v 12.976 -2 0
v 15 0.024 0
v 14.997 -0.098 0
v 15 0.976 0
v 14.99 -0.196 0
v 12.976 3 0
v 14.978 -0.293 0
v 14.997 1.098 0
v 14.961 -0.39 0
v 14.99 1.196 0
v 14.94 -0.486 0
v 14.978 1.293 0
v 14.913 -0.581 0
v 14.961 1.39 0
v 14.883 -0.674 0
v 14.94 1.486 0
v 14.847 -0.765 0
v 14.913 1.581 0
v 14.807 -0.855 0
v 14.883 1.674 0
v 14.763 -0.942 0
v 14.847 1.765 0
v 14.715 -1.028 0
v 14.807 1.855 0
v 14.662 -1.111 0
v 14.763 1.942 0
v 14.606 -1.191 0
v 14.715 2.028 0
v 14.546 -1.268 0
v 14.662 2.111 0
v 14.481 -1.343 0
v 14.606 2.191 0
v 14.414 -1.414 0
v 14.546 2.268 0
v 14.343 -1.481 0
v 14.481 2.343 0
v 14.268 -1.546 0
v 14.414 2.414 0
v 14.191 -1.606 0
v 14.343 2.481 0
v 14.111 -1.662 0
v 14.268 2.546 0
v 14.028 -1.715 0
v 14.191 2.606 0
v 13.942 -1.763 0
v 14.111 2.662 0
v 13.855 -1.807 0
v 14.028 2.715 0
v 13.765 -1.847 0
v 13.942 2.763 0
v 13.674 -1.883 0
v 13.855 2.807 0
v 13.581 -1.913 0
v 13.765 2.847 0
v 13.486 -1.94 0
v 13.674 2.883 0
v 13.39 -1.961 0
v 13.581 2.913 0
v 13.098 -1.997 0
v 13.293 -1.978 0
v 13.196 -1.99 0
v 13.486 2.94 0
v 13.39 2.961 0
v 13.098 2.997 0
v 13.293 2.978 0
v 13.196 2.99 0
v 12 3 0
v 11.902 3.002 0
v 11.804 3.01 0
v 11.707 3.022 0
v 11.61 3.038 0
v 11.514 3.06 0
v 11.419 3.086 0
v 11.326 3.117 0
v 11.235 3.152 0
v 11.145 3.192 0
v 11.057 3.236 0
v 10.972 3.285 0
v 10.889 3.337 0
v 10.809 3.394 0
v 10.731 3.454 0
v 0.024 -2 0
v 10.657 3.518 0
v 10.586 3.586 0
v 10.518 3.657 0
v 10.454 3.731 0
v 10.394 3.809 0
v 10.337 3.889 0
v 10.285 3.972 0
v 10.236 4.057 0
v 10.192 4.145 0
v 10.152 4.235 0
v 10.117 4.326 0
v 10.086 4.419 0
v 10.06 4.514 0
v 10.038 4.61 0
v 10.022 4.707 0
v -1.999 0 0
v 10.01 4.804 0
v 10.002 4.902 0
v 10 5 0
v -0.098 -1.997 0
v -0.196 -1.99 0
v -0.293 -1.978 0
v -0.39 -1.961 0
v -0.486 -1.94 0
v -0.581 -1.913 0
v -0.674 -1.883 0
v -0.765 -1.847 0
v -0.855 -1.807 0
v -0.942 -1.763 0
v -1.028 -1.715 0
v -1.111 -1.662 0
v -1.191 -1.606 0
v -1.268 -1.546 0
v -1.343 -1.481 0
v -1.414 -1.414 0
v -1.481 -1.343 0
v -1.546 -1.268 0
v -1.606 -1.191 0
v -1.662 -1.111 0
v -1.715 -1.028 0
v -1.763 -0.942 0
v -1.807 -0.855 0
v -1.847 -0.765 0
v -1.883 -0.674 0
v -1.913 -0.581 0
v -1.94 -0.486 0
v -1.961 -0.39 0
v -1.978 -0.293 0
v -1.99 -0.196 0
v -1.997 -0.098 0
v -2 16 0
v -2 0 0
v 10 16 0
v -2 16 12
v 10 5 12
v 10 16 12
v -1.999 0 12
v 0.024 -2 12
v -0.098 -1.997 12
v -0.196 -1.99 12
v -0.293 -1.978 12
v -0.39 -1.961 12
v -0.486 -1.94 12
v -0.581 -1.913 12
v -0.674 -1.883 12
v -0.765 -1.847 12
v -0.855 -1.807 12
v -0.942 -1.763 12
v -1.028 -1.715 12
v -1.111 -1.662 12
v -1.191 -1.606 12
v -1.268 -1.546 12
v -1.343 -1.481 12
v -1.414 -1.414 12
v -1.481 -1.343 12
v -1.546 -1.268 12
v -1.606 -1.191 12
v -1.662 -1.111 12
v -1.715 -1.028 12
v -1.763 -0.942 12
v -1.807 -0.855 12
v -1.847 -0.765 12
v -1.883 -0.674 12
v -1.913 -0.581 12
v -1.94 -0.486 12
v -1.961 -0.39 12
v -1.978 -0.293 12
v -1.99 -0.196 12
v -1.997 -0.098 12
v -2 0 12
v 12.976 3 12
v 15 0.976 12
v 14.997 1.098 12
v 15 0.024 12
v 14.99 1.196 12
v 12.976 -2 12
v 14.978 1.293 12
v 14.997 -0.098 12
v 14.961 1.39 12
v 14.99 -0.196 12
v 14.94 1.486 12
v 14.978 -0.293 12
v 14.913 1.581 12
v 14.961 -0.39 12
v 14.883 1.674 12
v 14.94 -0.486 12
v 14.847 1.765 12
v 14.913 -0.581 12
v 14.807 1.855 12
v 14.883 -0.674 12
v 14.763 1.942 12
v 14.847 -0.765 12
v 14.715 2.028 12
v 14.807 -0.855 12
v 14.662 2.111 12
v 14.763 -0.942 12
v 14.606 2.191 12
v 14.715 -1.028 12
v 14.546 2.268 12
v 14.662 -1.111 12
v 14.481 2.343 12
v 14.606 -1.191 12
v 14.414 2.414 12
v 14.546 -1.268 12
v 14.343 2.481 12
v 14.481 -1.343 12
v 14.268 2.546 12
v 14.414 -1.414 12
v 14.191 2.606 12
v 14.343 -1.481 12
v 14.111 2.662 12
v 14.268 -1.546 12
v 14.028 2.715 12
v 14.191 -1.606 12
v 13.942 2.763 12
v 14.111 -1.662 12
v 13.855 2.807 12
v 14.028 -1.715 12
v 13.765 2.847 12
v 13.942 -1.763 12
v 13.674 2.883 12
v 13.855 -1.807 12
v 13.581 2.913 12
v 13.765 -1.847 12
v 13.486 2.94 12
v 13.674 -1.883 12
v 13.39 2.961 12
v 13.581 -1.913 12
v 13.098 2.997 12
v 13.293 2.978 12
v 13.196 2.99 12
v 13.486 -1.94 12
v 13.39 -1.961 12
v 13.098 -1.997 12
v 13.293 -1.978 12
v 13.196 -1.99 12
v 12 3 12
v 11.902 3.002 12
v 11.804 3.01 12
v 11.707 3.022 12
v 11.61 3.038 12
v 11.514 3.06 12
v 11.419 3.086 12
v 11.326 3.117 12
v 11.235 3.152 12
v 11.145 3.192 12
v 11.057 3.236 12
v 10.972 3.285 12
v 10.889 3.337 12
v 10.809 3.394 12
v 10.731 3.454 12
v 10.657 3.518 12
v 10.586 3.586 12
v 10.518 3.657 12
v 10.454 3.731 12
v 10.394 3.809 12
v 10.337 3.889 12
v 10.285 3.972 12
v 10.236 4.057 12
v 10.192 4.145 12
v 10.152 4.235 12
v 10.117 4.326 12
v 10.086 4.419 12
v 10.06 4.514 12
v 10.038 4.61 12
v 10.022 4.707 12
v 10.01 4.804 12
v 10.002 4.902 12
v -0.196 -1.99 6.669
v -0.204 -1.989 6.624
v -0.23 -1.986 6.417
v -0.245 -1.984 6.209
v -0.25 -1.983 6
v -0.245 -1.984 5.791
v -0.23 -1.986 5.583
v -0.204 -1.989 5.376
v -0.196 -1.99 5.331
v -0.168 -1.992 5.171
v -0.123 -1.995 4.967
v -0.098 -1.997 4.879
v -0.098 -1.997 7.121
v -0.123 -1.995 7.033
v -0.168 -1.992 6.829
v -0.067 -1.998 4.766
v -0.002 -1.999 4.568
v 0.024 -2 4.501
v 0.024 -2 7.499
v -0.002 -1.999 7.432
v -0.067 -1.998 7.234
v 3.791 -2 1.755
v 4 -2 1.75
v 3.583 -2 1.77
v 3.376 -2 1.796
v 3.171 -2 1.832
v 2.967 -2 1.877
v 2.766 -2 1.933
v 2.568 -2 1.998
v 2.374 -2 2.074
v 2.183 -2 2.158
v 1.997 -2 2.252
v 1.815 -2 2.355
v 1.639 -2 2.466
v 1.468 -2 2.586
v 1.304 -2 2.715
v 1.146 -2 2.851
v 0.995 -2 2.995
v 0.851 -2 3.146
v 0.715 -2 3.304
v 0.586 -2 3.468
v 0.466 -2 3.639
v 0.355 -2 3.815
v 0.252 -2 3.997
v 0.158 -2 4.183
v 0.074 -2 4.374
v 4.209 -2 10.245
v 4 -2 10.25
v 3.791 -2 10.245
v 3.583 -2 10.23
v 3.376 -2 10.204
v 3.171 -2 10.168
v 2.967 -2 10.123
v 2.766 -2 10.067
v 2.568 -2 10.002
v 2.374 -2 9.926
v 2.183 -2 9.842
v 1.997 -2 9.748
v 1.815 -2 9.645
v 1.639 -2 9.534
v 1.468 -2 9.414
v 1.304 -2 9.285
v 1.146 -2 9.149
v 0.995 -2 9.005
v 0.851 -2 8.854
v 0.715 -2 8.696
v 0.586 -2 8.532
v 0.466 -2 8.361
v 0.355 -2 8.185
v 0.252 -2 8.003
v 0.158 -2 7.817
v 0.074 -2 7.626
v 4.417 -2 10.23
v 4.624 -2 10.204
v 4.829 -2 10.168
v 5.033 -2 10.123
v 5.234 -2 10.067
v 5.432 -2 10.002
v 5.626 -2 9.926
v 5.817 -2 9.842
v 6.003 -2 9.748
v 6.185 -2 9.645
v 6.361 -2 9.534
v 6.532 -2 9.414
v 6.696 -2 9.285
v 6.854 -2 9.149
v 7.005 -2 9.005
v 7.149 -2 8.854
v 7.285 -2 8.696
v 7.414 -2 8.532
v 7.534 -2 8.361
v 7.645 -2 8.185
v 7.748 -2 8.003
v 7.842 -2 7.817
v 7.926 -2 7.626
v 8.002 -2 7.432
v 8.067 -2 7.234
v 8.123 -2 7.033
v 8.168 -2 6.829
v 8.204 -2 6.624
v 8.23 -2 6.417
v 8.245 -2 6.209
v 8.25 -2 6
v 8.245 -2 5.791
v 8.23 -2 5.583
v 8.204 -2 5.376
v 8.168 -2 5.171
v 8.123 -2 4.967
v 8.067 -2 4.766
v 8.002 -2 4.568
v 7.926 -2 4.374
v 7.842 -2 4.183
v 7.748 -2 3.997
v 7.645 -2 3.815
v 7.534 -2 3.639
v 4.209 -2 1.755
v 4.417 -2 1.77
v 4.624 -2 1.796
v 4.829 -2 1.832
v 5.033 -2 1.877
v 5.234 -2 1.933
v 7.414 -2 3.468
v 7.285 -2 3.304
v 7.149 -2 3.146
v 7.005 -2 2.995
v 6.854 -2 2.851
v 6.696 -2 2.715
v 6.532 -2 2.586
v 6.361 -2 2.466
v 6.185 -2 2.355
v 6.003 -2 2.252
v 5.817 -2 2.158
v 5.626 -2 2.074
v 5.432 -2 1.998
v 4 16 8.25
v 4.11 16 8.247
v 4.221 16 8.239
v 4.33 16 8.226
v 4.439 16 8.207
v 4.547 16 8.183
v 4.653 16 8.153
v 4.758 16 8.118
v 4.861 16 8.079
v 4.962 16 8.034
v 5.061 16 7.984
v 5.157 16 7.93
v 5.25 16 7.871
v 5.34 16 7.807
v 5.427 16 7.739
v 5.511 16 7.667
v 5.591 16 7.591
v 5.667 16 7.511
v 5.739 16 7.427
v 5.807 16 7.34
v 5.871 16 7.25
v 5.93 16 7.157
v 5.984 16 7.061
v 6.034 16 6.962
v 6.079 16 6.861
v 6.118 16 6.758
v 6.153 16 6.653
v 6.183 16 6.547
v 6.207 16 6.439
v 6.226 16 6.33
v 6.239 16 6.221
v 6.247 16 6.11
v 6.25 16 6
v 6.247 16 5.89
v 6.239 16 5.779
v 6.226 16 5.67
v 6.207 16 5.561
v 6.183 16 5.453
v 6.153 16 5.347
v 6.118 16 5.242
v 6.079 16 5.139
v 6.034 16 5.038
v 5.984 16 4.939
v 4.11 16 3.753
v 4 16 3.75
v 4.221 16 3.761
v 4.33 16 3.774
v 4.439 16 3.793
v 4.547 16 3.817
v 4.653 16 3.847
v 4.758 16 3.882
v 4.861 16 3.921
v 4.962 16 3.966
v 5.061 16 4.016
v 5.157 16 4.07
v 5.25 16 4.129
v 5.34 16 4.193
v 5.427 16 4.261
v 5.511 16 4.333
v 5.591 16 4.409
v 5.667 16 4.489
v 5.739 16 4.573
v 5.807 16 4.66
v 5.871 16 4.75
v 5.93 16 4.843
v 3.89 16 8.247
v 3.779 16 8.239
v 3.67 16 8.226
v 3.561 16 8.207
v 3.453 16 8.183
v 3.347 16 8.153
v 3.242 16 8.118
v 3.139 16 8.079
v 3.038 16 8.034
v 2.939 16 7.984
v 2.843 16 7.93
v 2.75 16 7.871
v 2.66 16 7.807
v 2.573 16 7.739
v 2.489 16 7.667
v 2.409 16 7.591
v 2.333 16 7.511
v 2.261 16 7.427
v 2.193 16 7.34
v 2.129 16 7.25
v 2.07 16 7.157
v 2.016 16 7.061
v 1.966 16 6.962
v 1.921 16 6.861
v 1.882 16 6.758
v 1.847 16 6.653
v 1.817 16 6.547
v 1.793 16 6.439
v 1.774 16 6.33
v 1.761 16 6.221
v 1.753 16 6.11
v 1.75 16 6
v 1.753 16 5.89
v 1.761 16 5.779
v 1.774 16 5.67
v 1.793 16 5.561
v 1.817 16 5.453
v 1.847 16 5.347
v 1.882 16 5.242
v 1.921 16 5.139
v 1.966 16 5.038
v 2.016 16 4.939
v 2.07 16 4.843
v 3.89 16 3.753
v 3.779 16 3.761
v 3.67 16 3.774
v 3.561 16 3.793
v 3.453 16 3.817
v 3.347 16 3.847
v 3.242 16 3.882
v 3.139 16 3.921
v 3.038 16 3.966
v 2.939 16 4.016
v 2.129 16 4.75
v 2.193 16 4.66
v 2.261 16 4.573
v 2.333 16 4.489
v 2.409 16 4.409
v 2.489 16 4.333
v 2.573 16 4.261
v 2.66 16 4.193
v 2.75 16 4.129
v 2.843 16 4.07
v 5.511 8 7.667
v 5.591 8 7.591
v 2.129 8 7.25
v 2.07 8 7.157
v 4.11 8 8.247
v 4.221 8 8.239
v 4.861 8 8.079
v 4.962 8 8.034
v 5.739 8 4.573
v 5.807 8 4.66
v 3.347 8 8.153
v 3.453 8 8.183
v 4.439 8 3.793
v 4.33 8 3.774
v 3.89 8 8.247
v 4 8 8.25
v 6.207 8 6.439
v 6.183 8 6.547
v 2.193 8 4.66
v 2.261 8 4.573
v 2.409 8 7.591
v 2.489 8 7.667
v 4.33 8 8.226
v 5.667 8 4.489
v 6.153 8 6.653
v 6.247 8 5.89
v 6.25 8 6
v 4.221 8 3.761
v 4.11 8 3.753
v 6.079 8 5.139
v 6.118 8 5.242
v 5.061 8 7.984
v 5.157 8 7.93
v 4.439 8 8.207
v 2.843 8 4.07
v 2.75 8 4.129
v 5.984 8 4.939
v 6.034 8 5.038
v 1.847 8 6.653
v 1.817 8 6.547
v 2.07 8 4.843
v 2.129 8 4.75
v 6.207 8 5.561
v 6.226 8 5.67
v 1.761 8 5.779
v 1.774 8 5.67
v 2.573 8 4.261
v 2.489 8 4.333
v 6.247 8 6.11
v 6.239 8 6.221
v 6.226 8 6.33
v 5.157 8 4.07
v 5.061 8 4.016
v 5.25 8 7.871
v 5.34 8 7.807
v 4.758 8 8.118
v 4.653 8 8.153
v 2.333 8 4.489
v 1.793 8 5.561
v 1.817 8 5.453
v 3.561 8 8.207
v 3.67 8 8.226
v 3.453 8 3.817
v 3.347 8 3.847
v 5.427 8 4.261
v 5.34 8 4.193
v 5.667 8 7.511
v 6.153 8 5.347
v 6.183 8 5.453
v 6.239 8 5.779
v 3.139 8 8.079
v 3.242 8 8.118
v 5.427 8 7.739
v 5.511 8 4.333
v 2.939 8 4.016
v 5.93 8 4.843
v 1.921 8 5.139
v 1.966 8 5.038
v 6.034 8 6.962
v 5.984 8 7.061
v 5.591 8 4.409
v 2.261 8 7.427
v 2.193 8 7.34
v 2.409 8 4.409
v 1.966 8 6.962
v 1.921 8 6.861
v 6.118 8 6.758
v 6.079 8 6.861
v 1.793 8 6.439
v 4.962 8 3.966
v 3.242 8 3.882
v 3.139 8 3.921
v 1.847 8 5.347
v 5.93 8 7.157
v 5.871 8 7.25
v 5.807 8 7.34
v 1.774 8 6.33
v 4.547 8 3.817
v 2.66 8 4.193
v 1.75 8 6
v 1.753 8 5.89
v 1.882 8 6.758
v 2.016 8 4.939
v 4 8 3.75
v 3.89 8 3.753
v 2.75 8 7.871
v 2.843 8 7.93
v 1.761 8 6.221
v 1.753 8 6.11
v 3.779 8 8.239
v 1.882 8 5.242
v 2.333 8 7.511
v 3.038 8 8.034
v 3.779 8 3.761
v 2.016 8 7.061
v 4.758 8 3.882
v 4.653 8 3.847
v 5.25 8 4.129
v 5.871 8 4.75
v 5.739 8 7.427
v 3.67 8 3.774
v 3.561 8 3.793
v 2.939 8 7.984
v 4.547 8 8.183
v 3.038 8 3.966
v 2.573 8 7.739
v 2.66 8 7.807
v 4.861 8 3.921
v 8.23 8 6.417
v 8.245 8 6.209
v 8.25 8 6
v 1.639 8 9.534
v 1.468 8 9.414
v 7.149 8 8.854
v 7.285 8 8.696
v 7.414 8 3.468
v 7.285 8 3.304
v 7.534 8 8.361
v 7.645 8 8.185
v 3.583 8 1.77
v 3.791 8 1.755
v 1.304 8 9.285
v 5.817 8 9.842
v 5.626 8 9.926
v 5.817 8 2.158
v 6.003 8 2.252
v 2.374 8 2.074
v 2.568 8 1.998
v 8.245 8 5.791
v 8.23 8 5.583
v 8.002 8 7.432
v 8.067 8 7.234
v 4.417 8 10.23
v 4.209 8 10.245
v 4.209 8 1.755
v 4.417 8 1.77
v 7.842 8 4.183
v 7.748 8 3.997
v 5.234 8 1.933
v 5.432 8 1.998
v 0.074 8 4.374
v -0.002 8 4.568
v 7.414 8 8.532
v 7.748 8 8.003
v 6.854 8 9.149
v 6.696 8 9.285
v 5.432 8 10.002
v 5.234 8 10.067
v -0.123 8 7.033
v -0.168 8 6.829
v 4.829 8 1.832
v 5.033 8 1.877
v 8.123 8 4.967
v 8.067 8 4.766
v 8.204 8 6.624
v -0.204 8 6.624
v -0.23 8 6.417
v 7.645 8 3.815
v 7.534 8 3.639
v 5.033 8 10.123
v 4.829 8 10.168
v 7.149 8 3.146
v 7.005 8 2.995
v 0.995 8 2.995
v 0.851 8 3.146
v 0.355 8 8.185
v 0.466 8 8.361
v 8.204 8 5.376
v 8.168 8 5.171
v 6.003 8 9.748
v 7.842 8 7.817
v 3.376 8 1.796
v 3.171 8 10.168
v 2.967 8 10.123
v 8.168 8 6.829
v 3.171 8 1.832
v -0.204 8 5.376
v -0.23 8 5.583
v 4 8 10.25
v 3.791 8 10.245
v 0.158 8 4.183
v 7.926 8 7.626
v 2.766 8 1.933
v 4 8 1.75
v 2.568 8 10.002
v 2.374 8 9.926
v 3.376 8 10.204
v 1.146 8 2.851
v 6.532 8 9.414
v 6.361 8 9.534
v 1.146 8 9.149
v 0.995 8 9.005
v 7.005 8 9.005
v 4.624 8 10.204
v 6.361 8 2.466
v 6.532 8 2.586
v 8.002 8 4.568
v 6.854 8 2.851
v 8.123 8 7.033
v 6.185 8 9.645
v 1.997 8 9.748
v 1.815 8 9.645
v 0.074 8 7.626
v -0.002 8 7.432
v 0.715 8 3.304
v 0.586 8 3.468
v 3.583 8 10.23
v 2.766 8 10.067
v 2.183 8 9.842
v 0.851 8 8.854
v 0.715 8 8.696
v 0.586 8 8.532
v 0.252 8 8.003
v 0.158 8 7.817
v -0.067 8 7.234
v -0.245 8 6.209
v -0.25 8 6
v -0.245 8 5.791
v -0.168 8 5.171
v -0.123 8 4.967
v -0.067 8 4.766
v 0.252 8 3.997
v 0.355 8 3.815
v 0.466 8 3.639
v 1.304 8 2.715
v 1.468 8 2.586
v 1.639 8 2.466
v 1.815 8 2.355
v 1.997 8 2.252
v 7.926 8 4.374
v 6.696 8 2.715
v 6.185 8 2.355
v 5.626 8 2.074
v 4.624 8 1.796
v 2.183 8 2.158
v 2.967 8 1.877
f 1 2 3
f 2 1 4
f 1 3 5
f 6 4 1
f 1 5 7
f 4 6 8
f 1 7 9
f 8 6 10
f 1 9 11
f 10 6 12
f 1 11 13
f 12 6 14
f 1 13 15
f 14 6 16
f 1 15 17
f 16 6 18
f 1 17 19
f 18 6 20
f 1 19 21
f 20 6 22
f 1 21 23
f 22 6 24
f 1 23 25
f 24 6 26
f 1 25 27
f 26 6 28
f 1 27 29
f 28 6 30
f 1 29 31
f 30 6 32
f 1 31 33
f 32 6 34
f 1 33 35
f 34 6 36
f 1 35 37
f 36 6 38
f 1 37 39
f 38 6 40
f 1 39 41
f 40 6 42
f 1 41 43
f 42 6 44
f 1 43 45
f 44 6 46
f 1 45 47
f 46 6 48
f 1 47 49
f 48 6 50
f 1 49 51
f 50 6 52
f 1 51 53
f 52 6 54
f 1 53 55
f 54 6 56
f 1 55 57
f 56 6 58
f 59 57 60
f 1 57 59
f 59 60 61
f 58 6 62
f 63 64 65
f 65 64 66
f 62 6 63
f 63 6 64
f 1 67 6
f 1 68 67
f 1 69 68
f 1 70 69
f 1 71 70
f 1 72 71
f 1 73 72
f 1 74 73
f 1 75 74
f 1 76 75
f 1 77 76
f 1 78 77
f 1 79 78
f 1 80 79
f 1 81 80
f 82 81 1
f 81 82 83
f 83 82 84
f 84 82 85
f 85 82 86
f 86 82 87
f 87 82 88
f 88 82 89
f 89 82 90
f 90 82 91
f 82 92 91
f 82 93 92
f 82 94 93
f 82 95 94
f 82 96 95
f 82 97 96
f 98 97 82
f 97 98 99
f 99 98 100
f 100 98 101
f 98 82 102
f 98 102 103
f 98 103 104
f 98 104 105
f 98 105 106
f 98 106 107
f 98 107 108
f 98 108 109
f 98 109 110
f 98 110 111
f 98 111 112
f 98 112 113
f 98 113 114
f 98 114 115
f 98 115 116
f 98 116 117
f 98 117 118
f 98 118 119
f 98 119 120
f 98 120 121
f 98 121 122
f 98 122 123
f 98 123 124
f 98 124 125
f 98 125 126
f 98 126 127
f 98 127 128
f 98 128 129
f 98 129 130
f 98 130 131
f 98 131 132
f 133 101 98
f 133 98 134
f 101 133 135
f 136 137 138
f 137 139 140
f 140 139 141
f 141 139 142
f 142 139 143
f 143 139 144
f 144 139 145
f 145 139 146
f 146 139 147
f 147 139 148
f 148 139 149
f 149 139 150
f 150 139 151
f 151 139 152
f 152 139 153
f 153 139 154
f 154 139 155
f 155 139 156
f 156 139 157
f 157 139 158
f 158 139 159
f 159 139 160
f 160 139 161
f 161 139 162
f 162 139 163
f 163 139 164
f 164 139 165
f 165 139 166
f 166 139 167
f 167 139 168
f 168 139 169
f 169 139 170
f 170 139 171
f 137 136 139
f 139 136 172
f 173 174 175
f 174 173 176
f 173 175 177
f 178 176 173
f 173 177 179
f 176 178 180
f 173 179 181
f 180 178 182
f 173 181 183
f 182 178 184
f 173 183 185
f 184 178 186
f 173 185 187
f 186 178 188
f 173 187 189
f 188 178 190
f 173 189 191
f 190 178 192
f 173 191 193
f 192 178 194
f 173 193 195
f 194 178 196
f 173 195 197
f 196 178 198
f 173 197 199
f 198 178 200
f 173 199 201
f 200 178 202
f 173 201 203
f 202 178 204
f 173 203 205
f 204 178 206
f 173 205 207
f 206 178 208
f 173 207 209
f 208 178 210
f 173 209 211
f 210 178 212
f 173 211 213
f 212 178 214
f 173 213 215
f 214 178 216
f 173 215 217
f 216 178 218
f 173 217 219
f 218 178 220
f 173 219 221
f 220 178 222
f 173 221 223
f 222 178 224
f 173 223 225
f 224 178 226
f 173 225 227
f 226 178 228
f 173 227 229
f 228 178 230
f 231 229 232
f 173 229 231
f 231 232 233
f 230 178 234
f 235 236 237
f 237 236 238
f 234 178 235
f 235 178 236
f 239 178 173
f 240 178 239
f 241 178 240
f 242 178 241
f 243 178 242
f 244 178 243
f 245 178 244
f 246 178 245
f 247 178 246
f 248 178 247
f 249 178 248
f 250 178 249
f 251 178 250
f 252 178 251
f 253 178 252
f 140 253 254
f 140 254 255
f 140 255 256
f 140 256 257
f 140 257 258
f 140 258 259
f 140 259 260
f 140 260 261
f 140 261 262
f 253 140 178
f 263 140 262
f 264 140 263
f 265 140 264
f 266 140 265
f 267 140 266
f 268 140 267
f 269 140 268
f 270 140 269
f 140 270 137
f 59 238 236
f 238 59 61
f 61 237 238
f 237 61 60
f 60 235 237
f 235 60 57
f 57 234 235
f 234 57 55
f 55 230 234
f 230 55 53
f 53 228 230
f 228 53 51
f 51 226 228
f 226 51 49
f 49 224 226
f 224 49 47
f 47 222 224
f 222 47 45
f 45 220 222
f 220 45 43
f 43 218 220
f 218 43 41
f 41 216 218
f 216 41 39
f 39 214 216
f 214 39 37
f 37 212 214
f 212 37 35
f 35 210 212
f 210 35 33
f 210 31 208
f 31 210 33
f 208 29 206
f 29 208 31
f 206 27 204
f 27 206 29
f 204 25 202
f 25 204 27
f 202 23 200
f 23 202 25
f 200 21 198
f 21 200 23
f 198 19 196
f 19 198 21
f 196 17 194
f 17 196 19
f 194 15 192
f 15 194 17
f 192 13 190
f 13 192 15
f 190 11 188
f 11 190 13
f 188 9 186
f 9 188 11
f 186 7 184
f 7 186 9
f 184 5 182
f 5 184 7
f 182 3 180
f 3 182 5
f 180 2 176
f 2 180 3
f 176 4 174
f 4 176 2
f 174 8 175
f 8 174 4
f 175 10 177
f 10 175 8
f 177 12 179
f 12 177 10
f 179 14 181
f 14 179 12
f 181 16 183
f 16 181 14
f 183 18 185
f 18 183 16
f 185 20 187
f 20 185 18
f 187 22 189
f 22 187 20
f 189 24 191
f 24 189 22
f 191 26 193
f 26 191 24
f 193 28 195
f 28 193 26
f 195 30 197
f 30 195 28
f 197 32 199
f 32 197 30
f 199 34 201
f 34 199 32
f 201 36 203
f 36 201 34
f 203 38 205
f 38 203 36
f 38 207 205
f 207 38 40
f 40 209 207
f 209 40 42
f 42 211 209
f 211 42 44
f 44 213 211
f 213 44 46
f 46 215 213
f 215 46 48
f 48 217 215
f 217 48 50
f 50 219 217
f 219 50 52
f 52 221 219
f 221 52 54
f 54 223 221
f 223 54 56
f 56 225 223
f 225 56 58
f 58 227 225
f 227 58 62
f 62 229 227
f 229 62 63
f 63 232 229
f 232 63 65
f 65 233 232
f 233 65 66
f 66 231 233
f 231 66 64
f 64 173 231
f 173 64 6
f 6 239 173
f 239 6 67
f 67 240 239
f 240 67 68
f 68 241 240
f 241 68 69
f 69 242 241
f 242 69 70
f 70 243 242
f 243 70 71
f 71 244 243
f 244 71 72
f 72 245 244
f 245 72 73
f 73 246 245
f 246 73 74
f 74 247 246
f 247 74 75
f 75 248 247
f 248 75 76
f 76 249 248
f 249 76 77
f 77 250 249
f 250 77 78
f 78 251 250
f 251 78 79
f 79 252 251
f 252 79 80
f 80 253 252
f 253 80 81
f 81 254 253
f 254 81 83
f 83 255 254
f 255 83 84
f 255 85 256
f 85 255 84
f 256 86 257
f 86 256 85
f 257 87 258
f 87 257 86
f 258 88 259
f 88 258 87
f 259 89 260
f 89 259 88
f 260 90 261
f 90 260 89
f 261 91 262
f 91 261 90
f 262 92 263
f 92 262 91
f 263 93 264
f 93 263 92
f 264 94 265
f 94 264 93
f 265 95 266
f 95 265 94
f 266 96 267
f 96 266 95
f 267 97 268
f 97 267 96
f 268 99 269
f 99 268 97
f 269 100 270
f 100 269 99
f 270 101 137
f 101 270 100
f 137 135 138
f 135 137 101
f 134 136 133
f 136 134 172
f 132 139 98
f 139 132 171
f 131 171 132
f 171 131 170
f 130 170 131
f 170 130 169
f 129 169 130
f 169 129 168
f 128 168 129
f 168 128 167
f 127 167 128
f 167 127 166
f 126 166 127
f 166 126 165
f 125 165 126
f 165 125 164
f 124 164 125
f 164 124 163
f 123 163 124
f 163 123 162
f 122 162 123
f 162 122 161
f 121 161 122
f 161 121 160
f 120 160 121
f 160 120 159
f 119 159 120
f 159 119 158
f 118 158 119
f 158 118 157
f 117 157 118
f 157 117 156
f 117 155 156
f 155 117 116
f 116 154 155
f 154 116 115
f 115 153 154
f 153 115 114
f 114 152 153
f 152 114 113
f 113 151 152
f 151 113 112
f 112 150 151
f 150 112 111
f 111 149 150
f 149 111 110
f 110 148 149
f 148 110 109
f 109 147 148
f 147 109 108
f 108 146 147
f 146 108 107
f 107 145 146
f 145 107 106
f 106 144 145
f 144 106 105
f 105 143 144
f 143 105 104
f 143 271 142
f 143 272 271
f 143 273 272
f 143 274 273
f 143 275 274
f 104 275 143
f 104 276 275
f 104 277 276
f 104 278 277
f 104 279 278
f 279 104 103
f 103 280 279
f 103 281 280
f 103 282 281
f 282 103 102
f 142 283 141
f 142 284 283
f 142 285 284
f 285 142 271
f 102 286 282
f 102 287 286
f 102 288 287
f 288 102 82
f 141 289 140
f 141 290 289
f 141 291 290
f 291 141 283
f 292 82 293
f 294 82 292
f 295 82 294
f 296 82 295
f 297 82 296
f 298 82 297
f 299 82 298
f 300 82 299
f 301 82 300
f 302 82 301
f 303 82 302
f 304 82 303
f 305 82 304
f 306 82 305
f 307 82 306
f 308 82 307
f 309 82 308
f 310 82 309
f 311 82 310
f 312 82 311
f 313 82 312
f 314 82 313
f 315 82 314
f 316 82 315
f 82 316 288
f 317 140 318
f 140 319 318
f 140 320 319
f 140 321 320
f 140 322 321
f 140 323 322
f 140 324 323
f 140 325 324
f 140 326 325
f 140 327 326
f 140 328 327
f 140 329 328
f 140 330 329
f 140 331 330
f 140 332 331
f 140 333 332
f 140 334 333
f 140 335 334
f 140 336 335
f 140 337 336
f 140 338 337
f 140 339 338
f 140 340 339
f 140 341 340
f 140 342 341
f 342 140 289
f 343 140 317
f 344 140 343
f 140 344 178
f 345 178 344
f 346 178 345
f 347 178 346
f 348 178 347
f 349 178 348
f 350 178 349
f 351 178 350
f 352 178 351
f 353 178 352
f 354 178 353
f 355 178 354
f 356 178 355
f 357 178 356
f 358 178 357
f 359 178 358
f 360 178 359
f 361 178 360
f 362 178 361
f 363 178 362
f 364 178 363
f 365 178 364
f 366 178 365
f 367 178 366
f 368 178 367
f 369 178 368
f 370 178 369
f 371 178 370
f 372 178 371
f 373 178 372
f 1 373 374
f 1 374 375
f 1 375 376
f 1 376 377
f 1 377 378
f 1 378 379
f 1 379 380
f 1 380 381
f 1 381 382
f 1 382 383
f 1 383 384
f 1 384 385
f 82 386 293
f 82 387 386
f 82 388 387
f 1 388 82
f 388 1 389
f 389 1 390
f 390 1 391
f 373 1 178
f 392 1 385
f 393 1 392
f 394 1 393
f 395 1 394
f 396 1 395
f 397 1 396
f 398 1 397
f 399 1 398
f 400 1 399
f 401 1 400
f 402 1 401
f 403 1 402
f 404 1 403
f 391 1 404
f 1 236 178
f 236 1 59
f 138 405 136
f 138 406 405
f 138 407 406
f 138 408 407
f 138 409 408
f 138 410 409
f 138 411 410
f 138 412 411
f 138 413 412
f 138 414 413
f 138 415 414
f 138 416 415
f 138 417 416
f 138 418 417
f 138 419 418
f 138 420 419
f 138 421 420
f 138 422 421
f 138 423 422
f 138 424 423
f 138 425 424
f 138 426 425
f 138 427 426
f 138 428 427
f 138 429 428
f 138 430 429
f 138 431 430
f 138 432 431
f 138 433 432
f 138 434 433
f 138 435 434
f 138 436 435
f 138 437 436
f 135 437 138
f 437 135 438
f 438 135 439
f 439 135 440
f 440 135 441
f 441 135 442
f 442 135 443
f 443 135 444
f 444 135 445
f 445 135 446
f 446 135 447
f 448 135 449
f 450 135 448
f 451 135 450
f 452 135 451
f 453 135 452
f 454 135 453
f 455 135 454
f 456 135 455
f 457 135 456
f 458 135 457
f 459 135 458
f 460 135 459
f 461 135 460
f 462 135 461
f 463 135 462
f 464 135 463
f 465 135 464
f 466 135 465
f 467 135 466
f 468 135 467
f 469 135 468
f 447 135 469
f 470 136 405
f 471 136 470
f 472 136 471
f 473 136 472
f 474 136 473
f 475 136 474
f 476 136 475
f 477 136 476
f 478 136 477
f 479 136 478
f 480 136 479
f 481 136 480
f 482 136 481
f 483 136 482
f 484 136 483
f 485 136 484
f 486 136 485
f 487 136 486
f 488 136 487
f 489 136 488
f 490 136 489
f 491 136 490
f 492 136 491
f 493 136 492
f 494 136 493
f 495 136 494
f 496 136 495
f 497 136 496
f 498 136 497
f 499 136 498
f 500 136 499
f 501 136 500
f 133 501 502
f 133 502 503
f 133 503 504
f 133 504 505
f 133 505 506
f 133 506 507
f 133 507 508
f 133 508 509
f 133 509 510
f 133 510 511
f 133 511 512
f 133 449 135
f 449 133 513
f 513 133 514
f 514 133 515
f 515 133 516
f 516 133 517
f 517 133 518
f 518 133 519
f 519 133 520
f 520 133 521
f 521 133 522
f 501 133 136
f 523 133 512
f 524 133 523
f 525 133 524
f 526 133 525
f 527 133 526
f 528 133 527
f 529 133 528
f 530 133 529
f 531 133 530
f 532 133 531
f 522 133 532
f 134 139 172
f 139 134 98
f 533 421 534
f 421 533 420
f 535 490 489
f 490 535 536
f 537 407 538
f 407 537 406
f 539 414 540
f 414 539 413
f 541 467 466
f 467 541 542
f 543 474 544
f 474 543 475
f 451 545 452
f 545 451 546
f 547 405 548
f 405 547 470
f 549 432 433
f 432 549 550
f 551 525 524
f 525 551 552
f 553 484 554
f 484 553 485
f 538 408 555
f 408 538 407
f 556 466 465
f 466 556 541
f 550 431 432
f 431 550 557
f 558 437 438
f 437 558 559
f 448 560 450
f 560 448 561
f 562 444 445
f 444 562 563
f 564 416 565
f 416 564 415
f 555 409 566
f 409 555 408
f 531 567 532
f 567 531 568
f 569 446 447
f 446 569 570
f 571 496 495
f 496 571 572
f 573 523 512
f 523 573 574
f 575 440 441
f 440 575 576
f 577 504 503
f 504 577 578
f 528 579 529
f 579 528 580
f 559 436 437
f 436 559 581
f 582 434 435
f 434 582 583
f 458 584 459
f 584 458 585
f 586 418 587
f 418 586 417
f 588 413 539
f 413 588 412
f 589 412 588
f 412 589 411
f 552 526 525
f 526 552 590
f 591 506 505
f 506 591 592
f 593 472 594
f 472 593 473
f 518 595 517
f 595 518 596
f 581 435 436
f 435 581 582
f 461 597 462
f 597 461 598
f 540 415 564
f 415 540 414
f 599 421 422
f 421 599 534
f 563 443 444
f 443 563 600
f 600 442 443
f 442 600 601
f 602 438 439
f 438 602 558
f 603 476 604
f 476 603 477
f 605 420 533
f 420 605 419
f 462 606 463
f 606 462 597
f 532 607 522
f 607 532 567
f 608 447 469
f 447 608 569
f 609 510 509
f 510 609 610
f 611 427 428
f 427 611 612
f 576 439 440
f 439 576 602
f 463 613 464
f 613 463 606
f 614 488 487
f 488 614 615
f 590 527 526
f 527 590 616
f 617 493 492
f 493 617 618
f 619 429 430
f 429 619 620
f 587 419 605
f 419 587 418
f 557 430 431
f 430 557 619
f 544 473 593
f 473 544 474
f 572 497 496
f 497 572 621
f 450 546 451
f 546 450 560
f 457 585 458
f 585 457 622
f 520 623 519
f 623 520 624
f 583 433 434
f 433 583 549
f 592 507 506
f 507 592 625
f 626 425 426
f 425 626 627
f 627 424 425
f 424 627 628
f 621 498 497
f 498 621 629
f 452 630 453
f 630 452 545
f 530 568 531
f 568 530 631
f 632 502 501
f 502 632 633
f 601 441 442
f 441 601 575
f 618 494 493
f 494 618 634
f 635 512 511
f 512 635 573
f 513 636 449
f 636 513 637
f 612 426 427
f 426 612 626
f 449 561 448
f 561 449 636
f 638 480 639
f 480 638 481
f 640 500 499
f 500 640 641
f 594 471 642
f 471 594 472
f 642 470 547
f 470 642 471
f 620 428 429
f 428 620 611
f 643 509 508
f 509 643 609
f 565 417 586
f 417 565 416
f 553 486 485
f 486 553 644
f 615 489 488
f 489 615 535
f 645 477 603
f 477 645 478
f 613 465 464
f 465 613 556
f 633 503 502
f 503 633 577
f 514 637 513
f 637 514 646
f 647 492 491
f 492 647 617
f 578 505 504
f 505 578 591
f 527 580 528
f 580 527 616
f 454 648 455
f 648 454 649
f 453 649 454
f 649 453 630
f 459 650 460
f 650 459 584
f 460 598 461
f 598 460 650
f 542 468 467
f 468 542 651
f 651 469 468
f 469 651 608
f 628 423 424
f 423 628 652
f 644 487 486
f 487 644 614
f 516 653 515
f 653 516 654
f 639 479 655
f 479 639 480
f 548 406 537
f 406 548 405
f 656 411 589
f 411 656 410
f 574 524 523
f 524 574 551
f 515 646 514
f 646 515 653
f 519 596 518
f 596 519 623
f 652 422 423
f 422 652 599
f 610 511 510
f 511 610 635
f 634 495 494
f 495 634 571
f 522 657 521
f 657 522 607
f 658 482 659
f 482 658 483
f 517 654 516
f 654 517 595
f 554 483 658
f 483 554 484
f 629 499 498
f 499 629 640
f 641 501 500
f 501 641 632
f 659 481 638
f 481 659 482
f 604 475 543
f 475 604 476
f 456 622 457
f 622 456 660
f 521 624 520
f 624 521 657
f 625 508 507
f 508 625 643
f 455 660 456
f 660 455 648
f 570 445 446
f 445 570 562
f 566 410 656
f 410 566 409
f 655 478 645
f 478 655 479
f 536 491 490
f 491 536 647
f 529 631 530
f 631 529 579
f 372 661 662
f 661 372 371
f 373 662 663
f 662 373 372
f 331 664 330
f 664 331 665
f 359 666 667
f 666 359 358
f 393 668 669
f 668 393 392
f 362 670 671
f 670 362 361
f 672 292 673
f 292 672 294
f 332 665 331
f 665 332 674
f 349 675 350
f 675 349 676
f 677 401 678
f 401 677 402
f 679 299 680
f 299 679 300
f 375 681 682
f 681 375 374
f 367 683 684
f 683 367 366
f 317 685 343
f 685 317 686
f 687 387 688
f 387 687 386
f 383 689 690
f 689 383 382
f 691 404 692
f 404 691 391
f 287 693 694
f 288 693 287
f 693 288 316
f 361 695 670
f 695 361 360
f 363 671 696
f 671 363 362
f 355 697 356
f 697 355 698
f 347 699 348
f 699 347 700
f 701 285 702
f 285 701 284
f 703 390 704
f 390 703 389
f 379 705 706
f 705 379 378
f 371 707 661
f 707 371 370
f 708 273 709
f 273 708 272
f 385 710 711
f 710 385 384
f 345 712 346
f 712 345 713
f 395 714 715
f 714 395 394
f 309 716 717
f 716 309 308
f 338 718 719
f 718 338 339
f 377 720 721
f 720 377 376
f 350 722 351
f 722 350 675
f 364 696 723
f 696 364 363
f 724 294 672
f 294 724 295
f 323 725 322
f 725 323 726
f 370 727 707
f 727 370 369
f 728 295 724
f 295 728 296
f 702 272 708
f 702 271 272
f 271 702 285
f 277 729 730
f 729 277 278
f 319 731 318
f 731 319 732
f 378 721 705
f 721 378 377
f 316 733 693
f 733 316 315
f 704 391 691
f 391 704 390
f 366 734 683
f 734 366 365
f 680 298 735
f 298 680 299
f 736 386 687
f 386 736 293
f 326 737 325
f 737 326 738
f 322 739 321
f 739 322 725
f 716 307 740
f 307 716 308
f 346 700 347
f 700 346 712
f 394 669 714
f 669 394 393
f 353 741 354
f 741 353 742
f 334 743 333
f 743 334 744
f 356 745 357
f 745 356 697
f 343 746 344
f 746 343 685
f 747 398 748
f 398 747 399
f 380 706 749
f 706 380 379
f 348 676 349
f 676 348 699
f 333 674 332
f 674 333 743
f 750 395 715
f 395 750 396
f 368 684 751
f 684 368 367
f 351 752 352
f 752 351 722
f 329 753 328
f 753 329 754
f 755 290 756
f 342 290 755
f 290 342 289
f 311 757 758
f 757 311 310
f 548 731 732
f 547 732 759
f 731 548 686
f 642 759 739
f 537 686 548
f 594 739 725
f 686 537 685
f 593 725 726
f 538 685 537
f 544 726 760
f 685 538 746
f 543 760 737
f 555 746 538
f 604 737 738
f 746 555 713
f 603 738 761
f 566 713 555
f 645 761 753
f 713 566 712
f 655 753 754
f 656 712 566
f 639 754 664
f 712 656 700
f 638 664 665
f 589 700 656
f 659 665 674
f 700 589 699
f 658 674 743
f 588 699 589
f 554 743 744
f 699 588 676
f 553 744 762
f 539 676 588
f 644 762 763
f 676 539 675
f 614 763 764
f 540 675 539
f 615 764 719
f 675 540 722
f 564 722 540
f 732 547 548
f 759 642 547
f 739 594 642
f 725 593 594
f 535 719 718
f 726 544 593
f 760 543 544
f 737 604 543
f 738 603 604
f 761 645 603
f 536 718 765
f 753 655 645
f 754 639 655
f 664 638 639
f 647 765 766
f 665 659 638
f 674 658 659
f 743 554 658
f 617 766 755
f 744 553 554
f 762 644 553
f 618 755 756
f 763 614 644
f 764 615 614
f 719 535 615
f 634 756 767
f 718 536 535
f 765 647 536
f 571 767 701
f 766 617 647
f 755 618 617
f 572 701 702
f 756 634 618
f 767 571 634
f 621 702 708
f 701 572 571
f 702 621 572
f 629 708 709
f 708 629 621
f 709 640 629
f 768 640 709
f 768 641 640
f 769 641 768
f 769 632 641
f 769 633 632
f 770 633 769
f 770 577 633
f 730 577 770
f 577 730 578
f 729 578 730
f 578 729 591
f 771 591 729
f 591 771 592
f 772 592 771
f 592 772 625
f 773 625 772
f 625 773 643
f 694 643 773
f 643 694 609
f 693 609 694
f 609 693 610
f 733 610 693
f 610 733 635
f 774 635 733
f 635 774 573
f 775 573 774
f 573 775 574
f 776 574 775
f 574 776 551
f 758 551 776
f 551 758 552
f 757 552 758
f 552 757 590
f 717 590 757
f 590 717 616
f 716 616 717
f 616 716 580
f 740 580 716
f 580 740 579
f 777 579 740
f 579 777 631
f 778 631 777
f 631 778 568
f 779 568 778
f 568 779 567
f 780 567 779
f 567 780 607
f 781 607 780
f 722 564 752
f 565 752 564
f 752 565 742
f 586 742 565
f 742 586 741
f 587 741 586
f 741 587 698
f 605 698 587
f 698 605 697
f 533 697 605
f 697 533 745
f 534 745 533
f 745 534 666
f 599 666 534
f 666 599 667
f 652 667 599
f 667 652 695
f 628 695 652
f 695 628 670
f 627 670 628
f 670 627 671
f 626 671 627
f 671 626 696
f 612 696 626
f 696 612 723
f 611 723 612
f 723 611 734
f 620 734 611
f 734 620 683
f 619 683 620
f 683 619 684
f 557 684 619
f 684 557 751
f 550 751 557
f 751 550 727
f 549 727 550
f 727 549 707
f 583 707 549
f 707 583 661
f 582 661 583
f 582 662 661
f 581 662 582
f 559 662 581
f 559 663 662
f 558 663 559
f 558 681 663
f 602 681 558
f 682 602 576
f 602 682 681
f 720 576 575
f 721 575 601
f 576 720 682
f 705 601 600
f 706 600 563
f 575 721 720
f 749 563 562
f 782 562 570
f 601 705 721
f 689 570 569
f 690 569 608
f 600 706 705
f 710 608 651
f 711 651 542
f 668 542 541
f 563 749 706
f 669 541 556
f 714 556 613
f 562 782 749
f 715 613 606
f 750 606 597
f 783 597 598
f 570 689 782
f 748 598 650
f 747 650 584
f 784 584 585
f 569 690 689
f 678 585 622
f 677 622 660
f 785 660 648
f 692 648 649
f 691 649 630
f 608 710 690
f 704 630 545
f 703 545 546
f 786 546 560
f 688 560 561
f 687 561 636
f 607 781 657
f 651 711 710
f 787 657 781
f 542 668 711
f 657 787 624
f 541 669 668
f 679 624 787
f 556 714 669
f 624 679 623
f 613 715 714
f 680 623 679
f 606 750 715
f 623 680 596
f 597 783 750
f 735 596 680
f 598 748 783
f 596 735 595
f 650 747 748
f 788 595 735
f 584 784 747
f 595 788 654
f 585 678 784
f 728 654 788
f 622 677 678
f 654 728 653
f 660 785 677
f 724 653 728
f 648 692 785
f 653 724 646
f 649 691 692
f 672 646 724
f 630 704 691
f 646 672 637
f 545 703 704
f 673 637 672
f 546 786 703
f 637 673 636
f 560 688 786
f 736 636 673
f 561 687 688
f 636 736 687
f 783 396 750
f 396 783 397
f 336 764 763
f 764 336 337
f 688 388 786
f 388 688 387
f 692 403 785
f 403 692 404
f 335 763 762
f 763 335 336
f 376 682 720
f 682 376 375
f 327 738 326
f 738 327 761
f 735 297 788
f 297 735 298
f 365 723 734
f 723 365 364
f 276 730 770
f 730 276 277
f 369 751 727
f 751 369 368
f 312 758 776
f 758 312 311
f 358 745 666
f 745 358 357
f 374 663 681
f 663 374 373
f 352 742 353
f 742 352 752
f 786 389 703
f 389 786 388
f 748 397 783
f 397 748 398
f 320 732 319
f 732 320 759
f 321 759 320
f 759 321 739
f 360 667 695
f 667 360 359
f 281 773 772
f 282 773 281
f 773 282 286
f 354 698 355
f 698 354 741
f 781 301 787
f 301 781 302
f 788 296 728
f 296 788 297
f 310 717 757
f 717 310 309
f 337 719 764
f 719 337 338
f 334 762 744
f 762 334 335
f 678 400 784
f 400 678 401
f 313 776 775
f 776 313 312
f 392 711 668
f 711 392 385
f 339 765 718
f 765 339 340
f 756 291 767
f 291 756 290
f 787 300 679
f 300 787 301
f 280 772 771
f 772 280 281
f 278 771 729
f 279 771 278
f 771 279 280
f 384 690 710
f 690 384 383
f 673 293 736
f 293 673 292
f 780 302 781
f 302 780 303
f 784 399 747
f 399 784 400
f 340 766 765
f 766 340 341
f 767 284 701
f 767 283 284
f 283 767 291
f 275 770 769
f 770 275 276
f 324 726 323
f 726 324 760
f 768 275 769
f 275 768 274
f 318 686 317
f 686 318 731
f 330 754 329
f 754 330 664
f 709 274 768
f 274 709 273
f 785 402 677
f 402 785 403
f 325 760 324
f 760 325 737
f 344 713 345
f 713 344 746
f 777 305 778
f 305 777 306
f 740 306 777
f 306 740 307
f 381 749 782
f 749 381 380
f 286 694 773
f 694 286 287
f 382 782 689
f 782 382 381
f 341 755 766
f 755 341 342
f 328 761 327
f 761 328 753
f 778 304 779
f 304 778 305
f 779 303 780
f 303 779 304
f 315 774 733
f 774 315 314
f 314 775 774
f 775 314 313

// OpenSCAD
$fn=128;
difference(){
    union(){
linear_extrude(12)
offset(-2)
union(){
offset(4)
square([11+2,1]);
offset(4)
square([10-4+2,15-4]);
    

}
linear_extrude(12)
translate([-2,0,0])
square([10+2,15-4+5]);
}

translate([4,25,6])
rotate([90,0,0])
cylinder(d=4.5,h=50);

translate([4,-2+10,6])
rotate([90,0,0])
cylinder(d=8.5,h=15);
}
